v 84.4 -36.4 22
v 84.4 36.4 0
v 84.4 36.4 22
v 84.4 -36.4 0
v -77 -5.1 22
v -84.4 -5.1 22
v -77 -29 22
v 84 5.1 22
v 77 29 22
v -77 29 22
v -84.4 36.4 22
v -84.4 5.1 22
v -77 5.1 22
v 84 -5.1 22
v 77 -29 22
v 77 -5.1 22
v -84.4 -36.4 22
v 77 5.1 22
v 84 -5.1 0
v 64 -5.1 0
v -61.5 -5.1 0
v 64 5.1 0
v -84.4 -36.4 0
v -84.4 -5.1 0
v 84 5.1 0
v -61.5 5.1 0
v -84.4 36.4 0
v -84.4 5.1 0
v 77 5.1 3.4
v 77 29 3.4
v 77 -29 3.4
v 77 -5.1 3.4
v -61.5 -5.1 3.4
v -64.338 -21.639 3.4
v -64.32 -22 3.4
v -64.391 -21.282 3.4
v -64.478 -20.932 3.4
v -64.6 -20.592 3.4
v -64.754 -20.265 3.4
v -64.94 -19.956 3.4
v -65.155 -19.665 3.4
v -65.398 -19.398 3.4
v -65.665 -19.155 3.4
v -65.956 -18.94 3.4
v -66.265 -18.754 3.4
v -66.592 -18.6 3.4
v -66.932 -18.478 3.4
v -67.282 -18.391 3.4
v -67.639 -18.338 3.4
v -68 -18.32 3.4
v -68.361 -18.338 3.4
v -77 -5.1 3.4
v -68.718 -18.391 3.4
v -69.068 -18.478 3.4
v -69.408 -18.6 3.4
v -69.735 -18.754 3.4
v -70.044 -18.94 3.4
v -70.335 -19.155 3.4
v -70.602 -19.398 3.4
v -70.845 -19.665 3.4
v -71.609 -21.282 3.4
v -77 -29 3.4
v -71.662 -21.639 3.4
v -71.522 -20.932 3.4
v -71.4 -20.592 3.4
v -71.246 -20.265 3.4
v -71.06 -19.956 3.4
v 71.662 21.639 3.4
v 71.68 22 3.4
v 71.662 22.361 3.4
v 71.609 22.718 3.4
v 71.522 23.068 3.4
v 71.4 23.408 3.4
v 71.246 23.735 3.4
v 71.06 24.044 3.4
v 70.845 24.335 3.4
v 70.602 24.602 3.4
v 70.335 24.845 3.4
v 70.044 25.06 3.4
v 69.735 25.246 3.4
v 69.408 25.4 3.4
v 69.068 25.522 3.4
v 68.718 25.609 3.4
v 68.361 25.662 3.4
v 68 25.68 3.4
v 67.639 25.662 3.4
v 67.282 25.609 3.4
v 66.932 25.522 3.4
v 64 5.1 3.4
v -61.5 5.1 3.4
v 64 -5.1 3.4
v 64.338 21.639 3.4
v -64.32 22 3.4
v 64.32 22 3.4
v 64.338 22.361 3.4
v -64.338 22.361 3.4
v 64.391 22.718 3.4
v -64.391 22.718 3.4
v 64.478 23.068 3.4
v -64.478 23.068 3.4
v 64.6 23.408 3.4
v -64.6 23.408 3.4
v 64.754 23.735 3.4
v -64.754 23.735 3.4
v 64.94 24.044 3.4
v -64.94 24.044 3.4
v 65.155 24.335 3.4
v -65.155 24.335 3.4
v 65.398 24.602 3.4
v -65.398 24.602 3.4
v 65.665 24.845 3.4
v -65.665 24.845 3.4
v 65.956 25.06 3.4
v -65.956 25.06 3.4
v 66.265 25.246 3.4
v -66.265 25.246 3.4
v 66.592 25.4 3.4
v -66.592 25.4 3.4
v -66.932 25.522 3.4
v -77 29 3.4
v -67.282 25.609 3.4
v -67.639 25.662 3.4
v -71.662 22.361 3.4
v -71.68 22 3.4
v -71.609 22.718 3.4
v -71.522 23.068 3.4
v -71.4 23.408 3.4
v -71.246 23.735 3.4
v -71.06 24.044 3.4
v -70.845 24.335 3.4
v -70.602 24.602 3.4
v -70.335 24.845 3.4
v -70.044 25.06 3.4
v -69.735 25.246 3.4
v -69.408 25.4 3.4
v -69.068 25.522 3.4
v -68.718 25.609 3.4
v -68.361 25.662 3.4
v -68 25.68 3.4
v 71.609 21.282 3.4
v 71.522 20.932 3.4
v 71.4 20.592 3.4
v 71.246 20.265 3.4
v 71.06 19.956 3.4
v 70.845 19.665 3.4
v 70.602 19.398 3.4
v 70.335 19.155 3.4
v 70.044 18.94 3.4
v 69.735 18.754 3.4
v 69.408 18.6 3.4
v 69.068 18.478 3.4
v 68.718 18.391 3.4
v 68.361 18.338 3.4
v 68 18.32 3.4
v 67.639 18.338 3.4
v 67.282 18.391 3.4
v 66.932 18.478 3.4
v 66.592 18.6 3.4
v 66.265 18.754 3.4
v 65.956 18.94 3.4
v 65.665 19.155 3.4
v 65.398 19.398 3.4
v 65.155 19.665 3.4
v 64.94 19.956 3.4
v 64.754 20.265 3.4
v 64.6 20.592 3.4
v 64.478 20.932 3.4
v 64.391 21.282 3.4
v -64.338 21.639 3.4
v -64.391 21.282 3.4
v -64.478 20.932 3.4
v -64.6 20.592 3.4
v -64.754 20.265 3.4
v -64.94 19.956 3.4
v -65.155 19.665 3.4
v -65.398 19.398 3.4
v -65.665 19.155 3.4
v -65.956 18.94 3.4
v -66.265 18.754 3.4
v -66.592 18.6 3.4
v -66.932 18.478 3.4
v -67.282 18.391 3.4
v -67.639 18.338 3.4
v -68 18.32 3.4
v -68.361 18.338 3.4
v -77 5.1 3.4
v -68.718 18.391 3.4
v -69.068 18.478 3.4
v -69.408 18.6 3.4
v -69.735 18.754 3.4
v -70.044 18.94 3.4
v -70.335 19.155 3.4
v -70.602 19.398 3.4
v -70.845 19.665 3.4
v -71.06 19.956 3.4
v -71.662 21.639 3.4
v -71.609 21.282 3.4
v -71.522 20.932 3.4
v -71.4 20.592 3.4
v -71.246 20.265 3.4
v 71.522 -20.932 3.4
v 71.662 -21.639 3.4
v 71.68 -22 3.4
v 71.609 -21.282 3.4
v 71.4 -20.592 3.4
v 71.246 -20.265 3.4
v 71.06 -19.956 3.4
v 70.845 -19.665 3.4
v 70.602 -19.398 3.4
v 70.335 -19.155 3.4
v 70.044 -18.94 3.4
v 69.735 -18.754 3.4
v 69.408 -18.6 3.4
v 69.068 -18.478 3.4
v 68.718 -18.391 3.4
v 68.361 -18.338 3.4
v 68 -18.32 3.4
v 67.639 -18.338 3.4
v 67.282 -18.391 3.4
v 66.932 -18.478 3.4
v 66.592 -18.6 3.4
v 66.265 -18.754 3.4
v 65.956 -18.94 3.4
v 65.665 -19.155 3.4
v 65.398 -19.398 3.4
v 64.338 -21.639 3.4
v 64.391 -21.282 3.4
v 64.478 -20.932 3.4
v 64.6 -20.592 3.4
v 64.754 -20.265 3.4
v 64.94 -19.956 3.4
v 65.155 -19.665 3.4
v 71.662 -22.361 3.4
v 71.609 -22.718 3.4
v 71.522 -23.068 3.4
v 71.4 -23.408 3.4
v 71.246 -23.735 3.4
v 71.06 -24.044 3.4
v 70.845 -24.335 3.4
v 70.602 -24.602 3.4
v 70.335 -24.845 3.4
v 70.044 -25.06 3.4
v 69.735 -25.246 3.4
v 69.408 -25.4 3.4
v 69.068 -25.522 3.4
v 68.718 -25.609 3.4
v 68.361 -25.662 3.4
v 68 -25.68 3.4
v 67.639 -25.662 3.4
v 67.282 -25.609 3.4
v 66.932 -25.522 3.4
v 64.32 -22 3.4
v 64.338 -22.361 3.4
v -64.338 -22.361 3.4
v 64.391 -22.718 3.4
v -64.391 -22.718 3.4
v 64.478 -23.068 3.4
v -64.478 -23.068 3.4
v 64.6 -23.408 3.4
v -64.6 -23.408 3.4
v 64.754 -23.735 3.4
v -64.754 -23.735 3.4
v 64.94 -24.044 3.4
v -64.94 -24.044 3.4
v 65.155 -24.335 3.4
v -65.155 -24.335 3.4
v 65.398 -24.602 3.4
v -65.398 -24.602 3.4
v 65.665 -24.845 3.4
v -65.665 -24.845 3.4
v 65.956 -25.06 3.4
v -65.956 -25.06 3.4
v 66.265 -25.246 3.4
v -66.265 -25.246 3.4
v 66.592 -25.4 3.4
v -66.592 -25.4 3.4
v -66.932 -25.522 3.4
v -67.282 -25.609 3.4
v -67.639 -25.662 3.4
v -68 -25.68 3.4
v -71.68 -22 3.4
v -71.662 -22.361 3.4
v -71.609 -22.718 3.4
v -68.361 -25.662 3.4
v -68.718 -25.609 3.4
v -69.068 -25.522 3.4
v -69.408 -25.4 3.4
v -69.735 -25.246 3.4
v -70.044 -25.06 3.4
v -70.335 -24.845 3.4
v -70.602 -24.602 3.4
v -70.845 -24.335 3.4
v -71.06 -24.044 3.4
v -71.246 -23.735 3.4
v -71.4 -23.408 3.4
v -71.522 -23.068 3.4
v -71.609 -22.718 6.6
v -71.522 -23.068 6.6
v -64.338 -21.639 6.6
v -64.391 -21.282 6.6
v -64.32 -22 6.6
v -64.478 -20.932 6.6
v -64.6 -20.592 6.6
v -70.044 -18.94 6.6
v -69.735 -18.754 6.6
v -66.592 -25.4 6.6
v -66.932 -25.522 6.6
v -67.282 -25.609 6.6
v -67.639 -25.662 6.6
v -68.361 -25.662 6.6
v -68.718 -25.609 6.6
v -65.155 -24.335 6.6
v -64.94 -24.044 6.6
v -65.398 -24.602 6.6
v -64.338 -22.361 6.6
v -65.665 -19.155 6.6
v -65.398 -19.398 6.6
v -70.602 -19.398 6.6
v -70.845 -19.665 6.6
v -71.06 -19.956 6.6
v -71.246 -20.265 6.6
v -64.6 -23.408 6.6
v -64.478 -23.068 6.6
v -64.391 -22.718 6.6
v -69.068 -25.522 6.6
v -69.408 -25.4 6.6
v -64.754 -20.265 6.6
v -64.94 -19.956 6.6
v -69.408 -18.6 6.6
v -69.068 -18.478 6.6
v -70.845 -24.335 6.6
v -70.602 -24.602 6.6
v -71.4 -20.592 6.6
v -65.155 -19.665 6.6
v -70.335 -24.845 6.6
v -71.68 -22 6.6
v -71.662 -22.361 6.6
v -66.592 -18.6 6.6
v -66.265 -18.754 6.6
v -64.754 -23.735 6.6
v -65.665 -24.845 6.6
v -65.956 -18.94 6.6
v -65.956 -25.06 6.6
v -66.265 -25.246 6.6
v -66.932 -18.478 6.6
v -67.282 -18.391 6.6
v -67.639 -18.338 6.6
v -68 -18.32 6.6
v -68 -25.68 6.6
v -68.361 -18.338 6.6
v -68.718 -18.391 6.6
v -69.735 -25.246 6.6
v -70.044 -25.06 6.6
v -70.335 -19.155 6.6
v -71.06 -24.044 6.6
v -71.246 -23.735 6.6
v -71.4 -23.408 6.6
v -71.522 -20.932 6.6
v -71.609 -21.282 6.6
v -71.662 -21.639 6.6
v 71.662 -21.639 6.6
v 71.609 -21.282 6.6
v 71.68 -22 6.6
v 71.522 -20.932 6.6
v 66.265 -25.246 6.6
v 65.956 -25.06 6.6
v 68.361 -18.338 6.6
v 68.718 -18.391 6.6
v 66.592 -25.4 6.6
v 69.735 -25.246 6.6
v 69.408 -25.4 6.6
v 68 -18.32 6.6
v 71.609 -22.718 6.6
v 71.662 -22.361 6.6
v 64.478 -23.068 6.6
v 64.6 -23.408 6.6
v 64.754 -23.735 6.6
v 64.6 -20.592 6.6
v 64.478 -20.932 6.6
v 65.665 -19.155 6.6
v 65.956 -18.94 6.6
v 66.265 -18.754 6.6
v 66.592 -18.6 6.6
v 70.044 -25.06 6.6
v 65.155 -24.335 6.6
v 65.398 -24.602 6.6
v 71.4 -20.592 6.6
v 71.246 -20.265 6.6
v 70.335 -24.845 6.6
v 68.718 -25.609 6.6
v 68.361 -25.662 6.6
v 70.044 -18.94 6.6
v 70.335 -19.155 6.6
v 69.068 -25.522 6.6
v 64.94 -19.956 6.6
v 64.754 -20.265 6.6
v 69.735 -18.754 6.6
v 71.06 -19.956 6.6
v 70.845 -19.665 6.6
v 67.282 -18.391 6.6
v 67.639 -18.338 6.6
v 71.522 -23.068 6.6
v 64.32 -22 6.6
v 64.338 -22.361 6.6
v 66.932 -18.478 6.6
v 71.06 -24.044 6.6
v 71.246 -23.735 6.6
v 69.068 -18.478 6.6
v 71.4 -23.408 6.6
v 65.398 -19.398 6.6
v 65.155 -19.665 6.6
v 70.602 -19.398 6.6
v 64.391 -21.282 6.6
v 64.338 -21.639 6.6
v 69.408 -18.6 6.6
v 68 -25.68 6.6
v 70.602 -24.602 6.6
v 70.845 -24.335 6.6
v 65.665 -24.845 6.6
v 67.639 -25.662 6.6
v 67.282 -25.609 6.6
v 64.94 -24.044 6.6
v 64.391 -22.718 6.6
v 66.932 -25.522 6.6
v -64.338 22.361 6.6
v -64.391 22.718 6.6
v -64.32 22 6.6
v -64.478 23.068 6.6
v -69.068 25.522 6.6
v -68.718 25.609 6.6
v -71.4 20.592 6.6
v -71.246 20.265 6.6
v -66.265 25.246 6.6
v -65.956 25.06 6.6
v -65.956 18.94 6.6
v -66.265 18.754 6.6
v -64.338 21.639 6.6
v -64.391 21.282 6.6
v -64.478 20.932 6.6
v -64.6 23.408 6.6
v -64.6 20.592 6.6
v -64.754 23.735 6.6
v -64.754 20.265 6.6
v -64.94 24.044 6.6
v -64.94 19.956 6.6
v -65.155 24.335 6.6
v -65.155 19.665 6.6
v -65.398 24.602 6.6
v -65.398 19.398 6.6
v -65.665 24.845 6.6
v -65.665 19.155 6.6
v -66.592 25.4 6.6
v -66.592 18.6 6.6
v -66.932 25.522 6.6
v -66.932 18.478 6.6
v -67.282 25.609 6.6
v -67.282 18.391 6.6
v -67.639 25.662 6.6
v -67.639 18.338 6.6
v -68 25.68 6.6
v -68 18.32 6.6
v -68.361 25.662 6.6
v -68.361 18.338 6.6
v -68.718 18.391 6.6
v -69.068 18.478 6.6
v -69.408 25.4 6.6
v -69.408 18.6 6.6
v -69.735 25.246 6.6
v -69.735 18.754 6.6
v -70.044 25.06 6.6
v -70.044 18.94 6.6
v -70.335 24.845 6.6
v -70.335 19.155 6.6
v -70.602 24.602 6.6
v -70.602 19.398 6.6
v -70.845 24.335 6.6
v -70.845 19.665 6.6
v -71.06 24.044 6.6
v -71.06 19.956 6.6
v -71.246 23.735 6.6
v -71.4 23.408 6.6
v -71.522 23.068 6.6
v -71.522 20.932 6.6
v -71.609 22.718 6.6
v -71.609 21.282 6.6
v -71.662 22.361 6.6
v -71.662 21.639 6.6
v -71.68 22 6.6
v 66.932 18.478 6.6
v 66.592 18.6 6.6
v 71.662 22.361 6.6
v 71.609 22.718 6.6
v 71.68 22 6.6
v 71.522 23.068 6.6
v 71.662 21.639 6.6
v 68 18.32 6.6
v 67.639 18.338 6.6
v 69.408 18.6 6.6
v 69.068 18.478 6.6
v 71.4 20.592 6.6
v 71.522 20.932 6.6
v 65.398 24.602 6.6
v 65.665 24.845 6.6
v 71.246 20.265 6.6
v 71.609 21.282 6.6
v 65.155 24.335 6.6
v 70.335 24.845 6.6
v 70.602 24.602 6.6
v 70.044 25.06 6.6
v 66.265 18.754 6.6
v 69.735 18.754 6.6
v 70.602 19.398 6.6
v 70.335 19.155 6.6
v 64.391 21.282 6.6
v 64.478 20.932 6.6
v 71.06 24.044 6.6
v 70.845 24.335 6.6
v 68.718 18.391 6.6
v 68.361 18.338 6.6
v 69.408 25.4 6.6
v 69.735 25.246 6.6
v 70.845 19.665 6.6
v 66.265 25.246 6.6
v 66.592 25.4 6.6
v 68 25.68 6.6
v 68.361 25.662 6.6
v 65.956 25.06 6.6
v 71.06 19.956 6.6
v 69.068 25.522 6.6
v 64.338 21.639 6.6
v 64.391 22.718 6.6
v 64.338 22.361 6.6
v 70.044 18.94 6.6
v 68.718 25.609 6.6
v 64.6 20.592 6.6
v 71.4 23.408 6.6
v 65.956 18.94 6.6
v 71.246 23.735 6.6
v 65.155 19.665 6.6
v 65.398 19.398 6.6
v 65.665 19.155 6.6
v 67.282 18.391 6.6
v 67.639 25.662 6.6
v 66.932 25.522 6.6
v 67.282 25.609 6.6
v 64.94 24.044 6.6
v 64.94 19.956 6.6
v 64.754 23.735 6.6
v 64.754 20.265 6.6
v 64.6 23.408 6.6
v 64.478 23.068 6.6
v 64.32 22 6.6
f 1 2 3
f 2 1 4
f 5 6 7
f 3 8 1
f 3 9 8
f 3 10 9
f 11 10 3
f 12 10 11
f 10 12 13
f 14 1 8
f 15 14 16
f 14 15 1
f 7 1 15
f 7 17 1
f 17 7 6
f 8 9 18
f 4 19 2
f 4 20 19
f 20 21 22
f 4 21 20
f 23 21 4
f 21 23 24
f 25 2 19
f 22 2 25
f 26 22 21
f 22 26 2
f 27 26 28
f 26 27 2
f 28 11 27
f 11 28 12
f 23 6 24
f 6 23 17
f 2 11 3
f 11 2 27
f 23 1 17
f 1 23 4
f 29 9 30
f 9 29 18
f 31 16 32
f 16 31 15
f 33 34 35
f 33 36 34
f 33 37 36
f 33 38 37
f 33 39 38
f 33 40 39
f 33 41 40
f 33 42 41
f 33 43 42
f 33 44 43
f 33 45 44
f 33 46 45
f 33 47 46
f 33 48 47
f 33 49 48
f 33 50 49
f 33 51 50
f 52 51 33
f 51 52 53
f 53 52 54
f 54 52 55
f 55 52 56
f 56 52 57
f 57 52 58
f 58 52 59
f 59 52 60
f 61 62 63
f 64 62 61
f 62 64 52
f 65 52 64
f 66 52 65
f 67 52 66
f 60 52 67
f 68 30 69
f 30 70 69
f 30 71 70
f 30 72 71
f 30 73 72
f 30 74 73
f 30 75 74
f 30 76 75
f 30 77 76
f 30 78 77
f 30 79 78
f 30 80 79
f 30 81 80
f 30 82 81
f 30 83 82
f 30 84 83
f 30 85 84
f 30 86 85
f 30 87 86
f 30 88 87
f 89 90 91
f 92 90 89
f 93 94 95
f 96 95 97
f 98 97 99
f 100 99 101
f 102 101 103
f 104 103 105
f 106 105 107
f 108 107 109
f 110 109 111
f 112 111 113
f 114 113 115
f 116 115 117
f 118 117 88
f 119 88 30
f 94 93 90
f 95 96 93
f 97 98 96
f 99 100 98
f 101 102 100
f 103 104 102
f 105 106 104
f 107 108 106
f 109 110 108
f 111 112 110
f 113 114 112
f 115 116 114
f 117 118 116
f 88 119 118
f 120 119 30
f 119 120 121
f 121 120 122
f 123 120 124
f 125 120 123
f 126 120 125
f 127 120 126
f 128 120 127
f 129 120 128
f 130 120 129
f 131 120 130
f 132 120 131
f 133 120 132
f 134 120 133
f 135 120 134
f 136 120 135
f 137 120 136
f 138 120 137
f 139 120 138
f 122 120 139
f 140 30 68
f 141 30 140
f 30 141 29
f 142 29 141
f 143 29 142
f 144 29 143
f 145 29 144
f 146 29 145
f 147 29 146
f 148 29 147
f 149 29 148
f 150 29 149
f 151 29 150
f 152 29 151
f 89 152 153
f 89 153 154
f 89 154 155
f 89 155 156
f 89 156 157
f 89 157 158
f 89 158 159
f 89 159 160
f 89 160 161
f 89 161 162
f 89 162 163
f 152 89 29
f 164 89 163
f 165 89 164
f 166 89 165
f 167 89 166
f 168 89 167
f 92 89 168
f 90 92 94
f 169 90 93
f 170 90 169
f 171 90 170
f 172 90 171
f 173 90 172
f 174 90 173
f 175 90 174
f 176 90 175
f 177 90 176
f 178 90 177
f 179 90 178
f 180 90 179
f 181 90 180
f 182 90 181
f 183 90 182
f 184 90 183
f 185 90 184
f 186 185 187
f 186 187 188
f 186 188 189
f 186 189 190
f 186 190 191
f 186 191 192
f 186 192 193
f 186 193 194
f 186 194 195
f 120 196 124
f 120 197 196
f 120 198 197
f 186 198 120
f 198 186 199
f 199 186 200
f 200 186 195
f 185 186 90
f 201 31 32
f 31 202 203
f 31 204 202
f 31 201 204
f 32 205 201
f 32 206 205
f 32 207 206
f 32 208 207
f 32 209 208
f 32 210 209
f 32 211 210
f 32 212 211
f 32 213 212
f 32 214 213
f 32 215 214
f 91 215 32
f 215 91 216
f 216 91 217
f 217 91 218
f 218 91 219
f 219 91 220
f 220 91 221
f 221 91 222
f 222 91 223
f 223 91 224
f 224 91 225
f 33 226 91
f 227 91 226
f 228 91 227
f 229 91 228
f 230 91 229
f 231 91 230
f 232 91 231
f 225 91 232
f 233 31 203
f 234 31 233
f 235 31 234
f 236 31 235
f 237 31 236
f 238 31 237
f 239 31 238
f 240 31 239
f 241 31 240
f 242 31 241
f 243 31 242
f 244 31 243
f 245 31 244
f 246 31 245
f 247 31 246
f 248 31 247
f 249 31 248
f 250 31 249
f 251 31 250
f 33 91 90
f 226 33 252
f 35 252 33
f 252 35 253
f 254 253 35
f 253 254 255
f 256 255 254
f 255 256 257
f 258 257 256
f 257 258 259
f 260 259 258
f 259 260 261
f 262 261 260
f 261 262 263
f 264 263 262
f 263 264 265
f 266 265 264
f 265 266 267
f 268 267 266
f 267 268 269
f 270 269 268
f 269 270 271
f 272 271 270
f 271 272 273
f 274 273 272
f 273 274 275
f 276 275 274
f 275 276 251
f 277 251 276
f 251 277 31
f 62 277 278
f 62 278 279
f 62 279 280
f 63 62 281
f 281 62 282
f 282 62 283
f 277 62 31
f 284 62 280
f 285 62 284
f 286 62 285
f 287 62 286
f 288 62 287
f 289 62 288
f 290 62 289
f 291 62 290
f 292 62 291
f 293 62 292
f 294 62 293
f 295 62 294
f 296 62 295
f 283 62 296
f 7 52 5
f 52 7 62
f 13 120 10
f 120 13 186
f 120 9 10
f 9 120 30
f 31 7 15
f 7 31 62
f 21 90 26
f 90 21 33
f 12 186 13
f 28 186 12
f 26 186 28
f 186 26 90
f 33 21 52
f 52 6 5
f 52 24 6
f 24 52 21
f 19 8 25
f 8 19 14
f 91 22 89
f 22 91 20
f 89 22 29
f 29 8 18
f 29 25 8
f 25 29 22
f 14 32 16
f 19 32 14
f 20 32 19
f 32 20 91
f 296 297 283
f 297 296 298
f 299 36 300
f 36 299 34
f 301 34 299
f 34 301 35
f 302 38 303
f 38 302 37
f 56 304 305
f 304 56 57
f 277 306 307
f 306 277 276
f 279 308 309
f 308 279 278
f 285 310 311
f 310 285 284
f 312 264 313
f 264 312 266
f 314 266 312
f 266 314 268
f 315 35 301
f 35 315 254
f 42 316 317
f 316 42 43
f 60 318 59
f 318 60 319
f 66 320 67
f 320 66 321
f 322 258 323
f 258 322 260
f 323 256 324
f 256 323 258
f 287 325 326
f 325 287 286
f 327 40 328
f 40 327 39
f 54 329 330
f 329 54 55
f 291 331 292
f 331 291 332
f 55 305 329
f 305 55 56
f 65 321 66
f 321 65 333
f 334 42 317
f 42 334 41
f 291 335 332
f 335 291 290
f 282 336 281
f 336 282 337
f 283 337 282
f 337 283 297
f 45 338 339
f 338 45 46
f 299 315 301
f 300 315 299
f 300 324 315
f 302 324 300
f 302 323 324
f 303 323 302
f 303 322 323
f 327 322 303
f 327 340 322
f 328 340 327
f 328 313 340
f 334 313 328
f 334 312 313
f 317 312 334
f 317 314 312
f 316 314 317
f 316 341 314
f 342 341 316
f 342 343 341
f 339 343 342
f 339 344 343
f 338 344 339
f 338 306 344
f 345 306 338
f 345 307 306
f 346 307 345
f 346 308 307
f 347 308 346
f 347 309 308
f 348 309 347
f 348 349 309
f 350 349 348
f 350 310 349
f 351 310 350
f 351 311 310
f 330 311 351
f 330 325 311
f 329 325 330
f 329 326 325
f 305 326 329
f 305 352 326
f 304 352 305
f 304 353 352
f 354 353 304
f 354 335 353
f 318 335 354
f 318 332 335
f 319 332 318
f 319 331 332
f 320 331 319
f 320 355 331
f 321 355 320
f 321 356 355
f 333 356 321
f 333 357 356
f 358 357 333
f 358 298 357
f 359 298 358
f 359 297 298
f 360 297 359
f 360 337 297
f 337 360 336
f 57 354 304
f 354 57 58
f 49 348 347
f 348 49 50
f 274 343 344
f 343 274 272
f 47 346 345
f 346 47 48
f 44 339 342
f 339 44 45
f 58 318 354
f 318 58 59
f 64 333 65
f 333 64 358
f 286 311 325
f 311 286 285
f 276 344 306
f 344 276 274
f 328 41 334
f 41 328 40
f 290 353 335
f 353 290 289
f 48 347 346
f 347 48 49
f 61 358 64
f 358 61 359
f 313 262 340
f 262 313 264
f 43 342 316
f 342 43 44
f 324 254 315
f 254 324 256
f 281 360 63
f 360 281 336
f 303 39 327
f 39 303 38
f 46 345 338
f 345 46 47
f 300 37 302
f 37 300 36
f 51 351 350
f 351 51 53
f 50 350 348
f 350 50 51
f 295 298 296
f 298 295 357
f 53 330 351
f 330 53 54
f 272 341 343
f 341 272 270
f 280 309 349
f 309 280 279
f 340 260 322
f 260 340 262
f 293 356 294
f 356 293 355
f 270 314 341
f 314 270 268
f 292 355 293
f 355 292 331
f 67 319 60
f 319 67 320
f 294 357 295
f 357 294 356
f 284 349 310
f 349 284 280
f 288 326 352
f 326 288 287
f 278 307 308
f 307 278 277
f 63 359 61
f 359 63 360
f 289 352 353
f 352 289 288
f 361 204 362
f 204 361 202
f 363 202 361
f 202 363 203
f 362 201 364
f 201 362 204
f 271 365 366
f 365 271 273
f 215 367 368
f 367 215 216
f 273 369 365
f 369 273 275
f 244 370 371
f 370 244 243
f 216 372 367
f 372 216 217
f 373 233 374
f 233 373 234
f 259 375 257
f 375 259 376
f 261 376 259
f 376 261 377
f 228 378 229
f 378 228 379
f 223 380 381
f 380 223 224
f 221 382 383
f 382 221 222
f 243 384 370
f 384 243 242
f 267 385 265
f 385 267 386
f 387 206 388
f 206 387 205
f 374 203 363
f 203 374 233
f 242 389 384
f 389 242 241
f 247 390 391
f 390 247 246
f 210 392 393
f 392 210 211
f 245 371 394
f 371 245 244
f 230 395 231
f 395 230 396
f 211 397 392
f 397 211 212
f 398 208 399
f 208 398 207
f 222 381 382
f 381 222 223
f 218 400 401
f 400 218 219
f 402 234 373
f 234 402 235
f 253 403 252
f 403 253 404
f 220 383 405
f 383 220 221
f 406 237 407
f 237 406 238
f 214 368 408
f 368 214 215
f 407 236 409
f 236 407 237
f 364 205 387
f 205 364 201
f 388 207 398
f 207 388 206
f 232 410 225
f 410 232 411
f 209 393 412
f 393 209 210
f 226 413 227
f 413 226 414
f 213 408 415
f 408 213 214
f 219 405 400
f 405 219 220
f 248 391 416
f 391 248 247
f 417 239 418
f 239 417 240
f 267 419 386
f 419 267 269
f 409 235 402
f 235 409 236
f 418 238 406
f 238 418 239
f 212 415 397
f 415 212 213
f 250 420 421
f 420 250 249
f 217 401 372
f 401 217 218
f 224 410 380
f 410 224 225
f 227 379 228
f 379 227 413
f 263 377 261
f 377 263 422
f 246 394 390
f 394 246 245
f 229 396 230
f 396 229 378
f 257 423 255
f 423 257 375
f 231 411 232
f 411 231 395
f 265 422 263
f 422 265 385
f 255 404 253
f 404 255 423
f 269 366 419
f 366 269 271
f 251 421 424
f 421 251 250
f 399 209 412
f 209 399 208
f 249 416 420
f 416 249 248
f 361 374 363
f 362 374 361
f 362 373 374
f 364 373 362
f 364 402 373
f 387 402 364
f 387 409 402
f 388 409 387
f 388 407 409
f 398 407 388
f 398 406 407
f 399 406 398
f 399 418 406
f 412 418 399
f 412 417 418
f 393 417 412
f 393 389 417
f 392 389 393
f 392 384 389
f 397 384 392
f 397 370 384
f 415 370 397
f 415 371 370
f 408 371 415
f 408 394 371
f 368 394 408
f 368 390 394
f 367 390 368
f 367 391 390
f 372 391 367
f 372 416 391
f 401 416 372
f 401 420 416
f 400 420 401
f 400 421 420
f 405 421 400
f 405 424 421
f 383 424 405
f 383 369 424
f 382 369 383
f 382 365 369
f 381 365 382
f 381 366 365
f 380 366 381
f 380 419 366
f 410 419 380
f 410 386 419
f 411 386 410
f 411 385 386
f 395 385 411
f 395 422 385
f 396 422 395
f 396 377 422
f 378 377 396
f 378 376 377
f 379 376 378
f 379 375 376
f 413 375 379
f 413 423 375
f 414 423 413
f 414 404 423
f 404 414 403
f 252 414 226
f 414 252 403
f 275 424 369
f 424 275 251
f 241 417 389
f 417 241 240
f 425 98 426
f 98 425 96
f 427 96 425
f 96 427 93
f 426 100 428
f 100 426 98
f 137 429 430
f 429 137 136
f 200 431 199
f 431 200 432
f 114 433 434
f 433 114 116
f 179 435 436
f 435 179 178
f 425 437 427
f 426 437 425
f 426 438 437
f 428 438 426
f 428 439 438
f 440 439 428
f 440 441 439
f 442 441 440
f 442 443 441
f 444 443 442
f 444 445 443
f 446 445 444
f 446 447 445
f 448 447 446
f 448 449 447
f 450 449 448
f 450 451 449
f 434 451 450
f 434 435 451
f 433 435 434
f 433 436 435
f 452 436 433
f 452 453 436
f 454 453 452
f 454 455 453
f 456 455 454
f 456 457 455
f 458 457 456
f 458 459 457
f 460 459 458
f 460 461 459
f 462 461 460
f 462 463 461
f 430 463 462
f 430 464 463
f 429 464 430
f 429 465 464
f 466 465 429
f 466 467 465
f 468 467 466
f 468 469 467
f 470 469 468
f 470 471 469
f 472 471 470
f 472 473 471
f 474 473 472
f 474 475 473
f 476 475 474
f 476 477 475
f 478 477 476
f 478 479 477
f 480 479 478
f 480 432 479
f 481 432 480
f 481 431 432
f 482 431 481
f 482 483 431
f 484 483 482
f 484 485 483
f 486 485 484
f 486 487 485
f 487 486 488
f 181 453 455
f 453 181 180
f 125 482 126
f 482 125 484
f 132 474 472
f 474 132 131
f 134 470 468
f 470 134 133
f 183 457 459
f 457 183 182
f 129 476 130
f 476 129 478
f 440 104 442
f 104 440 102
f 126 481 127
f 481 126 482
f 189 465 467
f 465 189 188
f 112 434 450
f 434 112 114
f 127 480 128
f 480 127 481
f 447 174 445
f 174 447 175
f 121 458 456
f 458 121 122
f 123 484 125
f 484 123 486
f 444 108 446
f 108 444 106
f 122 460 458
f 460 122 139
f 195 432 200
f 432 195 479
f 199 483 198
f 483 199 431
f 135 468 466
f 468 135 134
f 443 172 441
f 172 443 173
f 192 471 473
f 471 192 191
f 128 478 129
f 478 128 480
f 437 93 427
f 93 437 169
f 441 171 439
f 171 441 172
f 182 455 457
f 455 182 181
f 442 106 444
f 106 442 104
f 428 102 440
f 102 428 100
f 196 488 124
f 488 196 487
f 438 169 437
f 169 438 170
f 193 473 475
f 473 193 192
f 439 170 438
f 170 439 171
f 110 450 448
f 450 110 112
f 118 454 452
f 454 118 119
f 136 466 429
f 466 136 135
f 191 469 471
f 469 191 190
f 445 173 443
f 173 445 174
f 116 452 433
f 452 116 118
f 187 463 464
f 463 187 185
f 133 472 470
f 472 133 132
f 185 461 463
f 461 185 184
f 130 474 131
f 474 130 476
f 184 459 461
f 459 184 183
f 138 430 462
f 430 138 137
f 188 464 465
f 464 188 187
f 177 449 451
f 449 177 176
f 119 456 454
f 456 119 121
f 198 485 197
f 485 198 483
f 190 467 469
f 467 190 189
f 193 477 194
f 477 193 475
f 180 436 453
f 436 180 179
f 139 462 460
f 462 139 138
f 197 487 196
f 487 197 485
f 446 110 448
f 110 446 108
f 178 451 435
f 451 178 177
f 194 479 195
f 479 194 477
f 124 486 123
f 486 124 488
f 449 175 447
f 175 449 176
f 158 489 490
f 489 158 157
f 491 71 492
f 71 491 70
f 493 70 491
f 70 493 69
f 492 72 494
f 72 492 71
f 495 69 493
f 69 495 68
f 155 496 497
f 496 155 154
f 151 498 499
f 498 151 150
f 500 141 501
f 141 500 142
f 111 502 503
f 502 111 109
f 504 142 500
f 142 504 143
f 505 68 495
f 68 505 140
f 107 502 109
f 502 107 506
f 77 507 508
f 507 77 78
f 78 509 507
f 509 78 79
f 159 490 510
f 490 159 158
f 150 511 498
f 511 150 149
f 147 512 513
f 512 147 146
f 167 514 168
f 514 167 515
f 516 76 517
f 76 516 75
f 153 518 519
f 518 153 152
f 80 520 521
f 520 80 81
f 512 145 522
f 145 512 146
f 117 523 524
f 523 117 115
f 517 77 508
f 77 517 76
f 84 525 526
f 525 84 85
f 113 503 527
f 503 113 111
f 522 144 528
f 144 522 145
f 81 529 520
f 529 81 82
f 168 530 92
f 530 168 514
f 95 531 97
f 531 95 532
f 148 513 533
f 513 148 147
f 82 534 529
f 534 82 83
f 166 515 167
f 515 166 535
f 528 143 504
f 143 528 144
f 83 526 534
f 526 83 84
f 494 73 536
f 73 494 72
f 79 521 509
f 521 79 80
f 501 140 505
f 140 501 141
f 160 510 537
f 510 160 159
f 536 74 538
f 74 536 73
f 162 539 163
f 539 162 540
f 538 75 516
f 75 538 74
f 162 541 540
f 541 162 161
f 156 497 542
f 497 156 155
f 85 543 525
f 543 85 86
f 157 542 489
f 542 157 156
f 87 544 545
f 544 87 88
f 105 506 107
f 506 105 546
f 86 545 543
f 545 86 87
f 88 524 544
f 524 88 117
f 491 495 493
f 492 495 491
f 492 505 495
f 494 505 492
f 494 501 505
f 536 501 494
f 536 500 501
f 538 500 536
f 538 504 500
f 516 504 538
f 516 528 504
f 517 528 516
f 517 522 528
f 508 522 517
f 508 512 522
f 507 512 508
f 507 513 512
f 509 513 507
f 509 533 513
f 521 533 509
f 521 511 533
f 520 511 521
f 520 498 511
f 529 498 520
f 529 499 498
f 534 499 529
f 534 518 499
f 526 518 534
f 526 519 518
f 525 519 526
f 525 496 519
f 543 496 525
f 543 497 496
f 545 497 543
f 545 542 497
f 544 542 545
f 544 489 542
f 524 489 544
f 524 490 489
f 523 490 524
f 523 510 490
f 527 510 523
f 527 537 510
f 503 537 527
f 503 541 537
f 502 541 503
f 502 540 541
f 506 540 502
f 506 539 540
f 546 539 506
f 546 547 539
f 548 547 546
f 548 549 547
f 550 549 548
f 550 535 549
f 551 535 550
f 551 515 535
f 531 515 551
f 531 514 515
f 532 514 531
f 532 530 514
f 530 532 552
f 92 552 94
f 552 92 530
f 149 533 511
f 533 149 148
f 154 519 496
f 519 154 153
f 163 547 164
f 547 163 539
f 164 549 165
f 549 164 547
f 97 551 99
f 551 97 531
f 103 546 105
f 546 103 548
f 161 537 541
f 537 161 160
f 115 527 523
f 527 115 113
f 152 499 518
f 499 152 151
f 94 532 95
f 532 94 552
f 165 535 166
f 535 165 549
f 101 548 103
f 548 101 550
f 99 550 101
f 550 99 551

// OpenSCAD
// Task 06: Battery BMS service-cover enclosure
// OpenSCAD stage generated from 01_kicad_mechanical_map.csv.
$fn = 64;
board = [154.000, 58.000, 1.600];
enclosure = [168.800, 72.800, 22.000];
wall = 3.400;
lid_clearance = 4.500;

module standoff(x, y) {
  translate([x, y, board[2]]) cylinder(d=7.360, h=wall + board[2]);
}
module keepout_window(x, y, r) {
  translate([x, y, enclosure[2]/2]) cube([2*r, wall*3, enclosure[2]], center=true);
}
module enclosure_shell() {
  difference() {
    translate([-enclosure[0]/2, -enclosure[1]/2, 0]) cube(enclosure);
    translate([-board[0]/2, -board[1]/2, wall]) cube([board[0], board[1], enclosure[2]]);
    // J1 CELL_STACK side/service keepout
    keepout_window(-74.000, 0.000, 12.500);
    // J2 SERVICE side/service keepout
    keepout_window(74.000, 0.000, 10.000);
  }
}
// MH1 copied from KiCad at (-68.000, -22.000)
// MH2 copied from KiCad at (68.000, -22.000)
// MH3 copied from KiCad at (-68.000, 22.000)
// MH4 copied from KiCad at (68.000, 22.000)
union() {
  enclosure_shell();
  standoff(-68.000, -22.000);
  standoff(68.000, -22.000);
  standoff(-68.000, 22.000);
  standoff(68.000, 22.000);
}
